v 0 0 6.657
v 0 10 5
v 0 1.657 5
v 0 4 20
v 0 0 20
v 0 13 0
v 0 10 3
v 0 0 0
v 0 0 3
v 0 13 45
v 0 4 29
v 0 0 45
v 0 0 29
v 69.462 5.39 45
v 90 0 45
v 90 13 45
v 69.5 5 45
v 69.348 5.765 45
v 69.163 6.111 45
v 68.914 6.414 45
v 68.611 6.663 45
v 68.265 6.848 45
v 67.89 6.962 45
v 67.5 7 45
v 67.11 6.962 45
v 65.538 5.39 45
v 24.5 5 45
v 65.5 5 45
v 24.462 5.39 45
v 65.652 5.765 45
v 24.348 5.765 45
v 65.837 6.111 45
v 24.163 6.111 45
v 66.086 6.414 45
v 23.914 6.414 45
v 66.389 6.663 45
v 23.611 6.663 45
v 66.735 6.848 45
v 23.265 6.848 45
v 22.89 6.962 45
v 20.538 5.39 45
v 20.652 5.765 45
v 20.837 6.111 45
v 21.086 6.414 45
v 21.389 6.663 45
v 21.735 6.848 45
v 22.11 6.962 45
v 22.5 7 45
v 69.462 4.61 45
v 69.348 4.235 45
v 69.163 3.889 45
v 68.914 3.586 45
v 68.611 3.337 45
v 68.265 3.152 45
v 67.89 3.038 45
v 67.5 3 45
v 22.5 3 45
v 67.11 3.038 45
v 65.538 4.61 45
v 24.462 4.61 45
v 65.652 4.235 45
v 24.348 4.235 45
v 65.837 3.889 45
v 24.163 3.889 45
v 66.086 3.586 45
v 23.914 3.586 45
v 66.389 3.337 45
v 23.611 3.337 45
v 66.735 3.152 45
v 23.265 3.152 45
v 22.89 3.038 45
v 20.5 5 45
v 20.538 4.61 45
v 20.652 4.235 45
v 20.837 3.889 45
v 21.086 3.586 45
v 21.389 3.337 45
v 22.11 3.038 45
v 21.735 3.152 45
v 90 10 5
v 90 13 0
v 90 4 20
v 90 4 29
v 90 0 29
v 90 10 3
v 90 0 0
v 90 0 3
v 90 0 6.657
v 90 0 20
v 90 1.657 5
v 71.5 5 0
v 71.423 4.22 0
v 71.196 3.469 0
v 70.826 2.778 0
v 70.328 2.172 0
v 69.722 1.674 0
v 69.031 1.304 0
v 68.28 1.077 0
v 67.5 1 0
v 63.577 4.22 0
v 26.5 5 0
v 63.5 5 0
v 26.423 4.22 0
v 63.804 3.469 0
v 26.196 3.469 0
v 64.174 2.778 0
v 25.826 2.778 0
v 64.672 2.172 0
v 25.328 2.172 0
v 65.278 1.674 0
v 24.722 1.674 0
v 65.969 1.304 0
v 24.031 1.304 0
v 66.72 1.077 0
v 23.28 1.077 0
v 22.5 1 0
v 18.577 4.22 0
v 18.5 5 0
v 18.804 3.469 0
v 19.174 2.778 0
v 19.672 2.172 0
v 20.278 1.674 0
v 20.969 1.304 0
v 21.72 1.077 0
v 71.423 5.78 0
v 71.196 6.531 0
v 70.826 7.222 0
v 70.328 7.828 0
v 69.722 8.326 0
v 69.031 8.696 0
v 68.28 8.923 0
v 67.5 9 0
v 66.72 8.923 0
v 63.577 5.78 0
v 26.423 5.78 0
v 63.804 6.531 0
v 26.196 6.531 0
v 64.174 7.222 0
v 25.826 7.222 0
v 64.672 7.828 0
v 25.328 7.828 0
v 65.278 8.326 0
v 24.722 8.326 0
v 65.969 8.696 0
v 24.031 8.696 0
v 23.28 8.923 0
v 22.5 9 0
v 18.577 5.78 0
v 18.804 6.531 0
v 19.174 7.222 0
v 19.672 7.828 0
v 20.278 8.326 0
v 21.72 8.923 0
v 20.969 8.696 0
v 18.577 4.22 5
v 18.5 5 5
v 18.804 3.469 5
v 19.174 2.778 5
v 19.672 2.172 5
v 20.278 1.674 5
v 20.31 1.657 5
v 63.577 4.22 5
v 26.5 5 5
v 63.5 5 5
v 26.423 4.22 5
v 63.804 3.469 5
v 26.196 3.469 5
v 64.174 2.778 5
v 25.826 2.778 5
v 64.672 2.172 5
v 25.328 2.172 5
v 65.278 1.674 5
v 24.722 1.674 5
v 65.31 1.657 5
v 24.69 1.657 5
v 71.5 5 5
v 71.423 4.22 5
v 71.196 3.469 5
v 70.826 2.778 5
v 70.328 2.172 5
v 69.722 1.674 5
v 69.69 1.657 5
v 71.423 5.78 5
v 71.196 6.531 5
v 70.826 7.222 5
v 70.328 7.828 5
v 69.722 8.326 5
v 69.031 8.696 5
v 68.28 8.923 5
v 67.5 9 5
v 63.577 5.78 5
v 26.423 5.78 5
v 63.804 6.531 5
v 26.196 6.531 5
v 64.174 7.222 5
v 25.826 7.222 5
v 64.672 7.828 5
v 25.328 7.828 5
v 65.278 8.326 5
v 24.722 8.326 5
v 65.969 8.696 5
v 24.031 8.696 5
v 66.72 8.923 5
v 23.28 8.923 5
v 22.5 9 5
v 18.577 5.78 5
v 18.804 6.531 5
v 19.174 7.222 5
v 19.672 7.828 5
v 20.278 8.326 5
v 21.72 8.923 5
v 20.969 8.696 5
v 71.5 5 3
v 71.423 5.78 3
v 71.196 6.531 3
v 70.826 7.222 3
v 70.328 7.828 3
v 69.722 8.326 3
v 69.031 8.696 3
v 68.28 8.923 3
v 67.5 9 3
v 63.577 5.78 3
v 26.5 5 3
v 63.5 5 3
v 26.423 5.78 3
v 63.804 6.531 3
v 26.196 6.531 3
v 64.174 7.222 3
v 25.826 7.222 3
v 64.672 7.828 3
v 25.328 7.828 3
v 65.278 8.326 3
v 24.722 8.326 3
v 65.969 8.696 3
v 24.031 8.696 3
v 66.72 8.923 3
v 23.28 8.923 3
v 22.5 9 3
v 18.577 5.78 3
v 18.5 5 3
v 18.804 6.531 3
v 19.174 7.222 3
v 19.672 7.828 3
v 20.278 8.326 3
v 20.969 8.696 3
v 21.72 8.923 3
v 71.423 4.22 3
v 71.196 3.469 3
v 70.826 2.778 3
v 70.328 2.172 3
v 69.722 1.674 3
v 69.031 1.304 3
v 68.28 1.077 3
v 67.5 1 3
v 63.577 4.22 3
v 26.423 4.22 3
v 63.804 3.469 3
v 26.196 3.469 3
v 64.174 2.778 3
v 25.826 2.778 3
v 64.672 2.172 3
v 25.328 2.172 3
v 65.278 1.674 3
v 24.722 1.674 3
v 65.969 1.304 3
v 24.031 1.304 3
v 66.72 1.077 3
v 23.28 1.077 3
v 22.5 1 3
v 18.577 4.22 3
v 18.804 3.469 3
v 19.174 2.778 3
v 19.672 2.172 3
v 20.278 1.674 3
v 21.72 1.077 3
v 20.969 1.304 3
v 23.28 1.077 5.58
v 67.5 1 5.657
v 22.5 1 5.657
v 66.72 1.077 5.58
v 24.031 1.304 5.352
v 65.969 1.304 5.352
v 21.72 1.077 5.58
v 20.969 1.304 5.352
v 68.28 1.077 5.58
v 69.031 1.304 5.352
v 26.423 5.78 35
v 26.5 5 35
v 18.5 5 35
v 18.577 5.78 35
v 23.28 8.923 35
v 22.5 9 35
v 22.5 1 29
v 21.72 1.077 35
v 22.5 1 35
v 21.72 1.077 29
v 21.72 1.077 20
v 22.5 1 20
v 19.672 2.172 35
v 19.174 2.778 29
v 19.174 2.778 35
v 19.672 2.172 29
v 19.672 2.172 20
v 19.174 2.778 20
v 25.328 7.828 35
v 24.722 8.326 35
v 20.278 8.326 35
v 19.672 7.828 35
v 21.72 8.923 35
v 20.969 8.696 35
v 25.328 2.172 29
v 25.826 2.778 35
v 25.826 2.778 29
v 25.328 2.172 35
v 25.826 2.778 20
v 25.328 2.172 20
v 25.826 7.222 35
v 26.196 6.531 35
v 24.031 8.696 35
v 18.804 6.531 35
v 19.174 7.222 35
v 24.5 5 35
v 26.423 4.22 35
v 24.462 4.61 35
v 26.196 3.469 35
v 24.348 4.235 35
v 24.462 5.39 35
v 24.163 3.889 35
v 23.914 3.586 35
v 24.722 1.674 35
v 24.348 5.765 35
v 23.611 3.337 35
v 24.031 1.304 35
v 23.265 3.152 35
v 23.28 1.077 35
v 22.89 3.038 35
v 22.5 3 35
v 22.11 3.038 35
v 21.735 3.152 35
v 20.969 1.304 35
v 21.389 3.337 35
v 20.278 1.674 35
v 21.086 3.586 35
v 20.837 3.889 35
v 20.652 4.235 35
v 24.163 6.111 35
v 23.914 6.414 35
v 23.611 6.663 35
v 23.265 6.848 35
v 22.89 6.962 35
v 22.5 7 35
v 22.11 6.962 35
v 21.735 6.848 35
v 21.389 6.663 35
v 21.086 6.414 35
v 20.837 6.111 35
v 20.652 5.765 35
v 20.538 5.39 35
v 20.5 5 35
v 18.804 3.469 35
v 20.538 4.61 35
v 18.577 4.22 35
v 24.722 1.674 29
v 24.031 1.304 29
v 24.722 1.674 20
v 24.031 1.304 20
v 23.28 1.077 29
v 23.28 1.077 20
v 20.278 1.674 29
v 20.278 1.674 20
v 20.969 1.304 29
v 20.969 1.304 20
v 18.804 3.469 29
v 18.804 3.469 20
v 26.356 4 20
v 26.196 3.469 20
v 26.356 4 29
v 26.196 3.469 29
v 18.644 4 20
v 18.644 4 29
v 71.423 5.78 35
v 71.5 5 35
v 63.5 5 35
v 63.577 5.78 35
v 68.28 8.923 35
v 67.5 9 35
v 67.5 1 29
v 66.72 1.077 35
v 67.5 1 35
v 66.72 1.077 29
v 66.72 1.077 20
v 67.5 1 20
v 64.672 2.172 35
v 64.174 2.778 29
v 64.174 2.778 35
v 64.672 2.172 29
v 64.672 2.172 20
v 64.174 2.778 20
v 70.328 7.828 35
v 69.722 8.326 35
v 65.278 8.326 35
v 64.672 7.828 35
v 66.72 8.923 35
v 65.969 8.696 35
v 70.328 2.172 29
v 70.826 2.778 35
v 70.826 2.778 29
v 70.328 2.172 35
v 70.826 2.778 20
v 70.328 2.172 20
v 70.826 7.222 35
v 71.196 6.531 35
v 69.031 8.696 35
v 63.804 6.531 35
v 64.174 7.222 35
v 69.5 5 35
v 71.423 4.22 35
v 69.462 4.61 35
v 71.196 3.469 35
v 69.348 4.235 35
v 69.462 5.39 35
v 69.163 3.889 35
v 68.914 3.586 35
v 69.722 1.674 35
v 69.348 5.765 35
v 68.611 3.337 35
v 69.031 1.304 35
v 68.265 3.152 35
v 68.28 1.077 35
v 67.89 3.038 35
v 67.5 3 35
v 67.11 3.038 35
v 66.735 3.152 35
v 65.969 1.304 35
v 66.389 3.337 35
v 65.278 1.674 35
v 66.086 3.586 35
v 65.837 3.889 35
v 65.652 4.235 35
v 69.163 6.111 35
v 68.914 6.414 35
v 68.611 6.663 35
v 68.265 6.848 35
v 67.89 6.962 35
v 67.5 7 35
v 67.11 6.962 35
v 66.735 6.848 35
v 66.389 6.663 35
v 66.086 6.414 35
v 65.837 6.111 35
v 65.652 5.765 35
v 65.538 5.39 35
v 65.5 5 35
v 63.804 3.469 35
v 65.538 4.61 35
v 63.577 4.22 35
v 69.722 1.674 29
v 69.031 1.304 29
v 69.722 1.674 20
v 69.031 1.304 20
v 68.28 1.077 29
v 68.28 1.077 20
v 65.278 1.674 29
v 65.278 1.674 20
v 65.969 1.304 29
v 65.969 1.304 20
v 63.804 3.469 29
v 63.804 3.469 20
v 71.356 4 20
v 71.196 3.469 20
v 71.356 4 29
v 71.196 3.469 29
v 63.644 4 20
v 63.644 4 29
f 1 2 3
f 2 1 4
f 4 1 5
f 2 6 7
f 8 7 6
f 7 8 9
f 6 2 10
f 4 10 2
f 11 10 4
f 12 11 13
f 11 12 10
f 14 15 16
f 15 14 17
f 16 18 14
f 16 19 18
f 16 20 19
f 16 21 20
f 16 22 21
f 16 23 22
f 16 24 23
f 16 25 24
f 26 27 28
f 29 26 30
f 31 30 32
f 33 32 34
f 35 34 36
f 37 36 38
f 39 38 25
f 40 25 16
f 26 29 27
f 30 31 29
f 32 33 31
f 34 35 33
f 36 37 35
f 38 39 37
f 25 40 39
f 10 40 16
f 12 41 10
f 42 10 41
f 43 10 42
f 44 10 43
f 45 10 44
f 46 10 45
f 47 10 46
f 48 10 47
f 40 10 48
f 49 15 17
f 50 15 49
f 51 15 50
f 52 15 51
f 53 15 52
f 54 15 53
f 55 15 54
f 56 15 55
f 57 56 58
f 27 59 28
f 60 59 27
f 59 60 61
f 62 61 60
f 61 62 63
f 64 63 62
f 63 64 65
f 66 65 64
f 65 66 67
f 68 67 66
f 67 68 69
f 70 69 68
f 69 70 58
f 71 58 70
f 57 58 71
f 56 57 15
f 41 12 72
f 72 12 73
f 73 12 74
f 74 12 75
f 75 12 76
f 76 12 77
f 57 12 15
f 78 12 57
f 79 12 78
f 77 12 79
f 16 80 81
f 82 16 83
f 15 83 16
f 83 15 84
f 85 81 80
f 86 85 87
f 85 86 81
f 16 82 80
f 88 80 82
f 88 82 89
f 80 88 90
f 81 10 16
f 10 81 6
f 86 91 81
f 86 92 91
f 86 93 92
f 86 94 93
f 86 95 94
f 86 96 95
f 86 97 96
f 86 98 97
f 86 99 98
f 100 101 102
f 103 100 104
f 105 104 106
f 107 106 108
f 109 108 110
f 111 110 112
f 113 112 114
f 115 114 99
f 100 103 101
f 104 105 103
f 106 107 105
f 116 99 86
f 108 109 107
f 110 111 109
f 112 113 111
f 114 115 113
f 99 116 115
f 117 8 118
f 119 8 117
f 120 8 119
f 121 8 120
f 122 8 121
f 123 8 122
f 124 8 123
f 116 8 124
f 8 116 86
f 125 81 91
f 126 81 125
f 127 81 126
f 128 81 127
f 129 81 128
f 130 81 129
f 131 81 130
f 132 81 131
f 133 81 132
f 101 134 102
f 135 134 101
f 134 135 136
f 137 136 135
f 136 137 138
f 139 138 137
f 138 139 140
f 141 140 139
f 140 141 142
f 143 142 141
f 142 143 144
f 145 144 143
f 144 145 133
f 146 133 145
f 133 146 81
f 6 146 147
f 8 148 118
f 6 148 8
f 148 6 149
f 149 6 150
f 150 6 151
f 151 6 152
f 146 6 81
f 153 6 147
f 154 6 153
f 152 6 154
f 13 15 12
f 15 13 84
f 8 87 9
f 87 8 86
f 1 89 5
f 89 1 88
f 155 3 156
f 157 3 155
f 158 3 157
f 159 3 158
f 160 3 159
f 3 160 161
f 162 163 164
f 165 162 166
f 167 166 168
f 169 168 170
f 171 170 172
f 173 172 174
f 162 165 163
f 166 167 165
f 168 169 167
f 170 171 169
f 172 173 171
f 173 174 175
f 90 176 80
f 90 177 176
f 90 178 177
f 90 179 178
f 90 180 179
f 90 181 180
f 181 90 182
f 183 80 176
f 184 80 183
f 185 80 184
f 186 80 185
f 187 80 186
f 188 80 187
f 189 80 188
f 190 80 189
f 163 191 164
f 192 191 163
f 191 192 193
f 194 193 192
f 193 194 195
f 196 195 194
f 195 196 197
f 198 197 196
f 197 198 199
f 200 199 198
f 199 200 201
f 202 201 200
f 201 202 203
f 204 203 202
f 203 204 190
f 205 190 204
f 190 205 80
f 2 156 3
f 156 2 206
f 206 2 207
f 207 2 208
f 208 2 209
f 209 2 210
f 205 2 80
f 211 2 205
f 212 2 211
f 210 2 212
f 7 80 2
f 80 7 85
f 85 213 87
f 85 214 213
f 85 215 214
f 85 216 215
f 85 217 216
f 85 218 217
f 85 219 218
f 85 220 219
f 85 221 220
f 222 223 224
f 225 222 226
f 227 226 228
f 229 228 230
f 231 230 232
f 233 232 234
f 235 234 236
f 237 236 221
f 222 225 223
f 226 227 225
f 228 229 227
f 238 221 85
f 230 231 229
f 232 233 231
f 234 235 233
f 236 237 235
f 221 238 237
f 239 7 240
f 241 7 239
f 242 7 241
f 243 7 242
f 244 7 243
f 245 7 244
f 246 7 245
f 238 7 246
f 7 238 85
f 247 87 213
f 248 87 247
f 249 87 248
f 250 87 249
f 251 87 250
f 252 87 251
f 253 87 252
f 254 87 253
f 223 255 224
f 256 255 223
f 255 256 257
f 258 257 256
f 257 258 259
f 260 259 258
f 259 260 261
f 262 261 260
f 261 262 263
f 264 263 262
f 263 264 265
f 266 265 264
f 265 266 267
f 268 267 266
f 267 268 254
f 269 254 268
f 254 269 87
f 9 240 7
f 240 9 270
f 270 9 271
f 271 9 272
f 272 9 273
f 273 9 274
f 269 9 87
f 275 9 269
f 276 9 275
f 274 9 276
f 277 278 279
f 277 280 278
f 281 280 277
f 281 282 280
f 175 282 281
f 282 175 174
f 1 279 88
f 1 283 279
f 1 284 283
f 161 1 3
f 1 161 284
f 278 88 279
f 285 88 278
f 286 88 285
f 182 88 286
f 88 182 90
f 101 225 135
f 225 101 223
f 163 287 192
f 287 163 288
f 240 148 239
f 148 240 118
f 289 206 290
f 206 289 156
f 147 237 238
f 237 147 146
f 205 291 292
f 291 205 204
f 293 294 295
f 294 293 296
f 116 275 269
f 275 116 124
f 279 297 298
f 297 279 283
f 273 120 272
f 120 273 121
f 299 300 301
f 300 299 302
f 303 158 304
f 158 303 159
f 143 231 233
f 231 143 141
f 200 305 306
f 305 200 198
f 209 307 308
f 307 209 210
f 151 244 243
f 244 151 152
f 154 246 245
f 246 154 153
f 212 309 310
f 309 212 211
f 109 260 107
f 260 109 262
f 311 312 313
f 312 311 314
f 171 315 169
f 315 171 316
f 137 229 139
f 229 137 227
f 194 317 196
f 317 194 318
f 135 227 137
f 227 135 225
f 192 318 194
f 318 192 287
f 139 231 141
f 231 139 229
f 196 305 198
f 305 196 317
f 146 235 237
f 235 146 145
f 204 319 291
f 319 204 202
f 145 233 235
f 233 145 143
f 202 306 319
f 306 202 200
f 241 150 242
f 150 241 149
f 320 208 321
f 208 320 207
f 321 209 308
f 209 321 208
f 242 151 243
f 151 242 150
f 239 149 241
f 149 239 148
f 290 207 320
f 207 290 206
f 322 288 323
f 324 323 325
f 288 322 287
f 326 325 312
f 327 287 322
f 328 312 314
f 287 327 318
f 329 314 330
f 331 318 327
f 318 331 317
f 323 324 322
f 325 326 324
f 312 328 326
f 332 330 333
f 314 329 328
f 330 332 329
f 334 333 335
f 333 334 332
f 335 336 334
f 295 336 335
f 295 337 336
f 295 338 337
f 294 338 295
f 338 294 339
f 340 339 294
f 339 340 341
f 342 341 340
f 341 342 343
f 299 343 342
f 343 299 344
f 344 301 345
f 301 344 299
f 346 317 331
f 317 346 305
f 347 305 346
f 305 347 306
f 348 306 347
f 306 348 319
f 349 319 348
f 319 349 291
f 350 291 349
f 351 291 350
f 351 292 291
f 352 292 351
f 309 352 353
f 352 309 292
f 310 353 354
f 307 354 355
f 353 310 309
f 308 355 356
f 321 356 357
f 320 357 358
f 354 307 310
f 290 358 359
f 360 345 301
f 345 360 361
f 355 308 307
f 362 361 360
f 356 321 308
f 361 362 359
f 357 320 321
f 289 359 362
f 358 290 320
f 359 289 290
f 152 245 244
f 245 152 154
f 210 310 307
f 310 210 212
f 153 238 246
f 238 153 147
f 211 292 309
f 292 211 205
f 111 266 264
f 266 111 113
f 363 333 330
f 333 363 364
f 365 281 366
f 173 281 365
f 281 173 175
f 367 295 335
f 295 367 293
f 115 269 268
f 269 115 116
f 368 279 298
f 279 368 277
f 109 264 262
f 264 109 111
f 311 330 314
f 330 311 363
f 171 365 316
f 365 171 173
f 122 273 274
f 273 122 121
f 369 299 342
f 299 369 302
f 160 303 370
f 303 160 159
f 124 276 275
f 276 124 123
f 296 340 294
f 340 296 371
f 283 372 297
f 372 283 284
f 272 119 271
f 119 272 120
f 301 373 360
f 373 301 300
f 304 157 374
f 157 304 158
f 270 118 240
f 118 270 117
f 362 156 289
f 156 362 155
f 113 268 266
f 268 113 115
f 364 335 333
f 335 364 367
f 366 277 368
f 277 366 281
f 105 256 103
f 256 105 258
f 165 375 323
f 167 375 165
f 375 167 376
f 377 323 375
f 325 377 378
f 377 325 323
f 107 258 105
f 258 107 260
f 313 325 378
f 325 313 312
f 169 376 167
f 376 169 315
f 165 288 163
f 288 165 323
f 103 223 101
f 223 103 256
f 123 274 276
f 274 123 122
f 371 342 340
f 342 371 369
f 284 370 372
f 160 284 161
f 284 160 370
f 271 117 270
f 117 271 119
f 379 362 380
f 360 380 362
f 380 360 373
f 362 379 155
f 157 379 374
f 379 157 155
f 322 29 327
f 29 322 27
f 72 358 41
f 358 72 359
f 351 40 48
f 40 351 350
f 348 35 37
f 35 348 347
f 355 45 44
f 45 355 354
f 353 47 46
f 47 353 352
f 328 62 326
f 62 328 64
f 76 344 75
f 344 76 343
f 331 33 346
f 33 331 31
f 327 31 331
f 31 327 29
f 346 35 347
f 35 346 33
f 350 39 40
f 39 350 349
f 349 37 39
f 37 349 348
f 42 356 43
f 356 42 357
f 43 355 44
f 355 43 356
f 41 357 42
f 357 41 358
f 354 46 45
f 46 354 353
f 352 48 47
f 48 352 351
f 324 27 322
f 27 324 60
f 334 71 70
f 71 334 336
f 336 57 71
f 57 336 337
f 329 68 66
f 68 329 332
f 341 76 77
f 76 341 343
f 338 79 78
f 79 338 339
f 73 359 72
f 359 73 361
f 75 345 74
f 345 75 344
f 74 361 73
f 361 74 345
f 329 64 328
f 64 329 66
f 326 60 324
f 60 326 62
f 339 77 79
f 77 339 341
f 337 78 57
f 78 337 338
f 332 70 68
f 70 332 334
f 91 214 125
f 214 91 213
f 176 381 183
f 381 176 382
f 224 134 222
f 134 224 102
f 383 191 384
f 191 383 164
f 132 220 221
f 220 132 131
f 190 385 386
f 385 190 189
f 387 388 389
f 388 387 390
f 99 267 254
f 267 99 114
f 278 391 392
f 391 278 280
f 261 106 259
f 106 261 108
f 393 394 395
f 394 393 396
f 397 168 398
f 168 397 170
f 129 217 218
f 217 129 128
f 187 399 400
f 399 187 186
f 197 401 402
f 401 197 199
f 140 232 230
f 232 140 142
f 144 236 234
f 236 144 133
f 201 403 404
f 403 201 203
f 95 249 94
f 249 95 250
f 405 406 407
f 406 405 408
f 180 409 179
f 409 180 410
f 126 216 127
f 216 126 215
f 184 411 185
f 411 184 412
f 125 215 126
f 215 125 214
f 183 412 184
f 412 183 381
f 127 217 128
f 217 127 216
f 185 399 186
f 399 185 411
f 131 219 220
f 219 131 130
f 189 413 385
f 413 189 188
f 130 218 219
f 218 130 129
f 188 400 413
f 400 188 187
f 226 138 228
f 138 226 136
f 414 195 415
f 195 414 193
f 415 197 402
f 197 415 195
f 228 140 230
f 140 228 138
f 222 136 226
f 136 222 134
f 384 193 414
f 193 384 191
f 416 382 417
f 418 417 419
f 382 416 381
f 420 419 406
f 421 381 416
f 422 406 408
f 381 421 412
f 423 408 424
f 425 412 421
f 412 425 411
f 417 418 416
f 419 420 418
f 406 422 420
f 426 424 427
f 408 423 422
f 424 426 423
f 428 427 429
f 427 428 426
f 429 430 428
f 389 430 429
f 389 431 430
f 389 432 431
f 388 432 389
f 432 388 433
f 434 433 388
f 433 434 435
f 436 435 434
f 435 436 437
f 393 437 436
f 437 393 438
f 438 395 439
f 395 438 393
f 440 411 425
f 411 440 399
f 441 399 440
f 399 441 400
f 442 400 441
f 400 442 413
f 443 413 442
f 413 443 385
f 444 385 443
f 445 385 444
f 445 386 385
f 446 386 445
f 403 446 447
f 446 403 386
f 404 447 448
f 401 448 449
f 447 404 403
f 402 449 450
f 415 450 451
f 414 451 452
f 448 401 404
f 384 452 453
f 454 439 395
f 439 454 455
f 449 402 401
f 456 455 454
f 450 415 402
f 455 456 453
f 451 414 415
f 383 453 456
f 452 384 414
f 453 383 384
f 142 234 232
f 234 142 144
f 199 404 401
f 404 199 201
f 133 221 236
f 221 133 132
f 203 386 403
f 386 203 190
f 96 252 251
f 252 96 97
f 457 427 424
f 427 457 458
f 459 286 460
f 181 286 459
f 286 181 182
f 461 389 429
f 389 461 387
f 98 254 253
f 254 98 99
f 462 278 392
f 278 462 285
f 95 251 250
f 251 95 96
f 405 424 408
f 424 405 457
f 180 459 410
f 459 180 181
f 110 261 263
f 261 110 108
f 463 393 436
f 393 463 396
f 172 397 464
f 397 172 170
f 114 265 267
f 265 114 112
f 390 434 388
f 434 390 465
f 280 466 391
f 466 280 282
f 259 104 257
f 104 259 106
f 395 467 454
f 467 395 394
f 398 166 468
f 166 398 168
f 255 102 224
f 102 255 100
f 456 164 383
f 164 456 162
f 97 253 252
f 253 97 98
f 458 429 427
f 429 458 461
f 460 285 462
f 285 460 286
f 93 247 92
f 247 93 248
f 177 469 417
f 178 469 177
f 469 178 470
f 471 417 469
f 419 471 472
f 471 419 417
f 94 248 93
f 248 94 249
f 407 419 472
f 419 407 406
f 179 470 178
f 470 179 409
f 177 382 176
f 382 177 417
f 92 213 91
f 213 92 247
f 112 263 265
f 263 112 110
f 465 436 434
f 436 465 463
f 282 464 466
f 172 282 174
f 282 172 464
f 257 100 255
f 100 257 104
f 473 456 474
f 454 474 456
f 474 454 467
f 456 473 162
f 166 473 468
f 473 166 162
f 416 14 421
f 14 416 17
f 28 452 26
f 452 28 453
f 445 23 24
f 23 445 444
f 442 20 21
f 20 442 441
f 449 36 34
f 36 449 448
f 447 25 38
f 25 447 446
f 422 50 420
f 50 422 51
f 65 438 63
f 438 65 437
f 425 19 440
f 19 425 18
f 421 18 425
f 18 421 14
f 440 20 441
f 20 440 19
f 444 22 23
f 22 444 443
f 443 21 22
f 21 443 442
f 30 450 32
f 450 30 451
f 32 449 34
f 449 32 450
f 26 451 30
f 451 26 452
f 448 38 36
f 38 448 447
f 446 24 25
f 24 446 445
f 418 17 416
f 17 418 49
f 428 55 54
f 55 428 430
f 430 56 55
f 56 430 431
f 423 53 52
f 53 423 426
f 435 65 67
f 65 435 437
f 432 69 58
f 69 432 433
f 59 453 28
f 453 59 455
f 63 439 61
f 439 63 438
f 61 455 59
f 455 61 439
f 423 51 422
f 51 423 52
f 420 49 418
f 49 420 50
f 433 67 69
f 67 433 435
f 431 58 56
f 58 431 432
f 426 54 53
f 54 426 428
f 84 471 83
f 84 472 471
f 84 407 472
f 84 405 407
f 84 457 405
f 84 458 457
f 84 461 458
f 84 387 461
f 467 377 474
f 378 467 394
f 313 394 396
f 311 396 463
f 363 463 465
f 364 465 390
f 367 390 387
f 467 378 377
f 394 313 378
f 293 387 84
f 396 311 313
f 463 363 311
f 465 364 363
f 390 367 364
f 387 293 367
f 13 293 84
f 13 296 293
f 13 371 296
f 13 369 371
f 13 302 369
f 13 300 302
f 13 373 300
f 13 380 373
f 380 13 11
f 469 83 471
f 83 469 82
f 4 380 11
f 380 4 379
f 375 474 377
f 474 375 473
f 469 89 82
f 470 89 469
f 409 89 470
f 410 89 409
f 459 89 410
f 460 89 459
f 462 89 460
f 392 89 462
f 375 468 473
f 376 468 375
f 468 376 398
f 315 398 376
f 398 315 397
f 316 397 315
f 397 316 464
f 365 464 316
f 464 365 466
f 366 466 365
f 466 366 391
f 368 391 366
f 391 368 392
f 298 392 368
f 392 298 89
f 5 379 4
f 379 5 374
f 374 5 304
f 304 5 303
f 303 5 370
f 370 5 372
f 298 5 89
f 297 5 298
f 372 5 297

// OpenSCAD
difference() {
	difference() {
		difference() {
			difference() {
				difference() {
					cube(size = [90, 13, 45]);
					translate(v = [0, 0, 3]) {
						cube(size = [90, 10, 2]);
					}
				}
				translate(v = [0, -1, 0]) {
					translate(v = [0, 0, 2]) {
						rotate(a = 45, v = [1, 0, 0]) {
							cube(size = [90, 4, 4]);
						}
					}
				}
			}
			translate(v = [22.5000000000, 0, 0]) {
				translate(v = [0, 5, 0]) {
					union() {
						cylinder($fn = 32, h = 35, r = 4);
						translate(v = [0, 0, 35]) {
							cylinder($fn = 32, h = 10, r = 2);
						}
					}
				}
			}
		}
		translate(v = [67.5000000000, 0, 0]) {
			translate(v = [0, 5, 0]) {
				union() {
					cylinder($fn = 32, h = 35, r = 4);
					translate(v = [0, 0, 35]) {
						cylinder($fn = 32, h = 10, r = 2);
					}
				}
			}
		}
	}
	translate(v = [0, 0, 20]) {
		cube(size = [90, 4, 9]);
	}
}
/***********************************************
*********      SolidPython code:      **********
************************************************
 

import solid as s
import solid.utils as u

spacer_width = 13
spacer_height = 45
spacer_depth = 90
screw_offset = 22.5
screw_head_radius = 4
screw_rad = 2
screw_length = 10
head_hole_height = spacer_height - screw_length

body = s.cube(size=[spacer_depth, spacer_width, spacer_height])

slot = u.up(3)(s.cube(size=[spacer_depth, 10, 2]))
slot_round = u.back(1)(u.up(2)(
    s.rotate(a=spacer_height, v=[1, 0, 0])(
        s.cube(size=[spacer_depth, 4, 4])
    )
))

screw_hole = u.forward(5)(
    s.cylinder(r=screw_head_radius, h=head_hole_height, segments=32) +
    u.up(head_hole_height)(
        s.cylinder(r=screw_rad, h=screw_length, segments=32)
    )
)

screw_hole_1 = u.right(screw_offset)(screw_hole)
screw_hole_2 = u.right(spacer_depth - screw_offset)(screw_hole)

wire_run = u.up(20)(s.cube(size=[spacer_depth, 4, 9]))

final = body - slot - slot_round - screw_hole_1 - screw_hole_2 - wire_run

s.scad_render_to_file(final, __file__.replace('.py', '.scad'))
 
 
************************************************/
